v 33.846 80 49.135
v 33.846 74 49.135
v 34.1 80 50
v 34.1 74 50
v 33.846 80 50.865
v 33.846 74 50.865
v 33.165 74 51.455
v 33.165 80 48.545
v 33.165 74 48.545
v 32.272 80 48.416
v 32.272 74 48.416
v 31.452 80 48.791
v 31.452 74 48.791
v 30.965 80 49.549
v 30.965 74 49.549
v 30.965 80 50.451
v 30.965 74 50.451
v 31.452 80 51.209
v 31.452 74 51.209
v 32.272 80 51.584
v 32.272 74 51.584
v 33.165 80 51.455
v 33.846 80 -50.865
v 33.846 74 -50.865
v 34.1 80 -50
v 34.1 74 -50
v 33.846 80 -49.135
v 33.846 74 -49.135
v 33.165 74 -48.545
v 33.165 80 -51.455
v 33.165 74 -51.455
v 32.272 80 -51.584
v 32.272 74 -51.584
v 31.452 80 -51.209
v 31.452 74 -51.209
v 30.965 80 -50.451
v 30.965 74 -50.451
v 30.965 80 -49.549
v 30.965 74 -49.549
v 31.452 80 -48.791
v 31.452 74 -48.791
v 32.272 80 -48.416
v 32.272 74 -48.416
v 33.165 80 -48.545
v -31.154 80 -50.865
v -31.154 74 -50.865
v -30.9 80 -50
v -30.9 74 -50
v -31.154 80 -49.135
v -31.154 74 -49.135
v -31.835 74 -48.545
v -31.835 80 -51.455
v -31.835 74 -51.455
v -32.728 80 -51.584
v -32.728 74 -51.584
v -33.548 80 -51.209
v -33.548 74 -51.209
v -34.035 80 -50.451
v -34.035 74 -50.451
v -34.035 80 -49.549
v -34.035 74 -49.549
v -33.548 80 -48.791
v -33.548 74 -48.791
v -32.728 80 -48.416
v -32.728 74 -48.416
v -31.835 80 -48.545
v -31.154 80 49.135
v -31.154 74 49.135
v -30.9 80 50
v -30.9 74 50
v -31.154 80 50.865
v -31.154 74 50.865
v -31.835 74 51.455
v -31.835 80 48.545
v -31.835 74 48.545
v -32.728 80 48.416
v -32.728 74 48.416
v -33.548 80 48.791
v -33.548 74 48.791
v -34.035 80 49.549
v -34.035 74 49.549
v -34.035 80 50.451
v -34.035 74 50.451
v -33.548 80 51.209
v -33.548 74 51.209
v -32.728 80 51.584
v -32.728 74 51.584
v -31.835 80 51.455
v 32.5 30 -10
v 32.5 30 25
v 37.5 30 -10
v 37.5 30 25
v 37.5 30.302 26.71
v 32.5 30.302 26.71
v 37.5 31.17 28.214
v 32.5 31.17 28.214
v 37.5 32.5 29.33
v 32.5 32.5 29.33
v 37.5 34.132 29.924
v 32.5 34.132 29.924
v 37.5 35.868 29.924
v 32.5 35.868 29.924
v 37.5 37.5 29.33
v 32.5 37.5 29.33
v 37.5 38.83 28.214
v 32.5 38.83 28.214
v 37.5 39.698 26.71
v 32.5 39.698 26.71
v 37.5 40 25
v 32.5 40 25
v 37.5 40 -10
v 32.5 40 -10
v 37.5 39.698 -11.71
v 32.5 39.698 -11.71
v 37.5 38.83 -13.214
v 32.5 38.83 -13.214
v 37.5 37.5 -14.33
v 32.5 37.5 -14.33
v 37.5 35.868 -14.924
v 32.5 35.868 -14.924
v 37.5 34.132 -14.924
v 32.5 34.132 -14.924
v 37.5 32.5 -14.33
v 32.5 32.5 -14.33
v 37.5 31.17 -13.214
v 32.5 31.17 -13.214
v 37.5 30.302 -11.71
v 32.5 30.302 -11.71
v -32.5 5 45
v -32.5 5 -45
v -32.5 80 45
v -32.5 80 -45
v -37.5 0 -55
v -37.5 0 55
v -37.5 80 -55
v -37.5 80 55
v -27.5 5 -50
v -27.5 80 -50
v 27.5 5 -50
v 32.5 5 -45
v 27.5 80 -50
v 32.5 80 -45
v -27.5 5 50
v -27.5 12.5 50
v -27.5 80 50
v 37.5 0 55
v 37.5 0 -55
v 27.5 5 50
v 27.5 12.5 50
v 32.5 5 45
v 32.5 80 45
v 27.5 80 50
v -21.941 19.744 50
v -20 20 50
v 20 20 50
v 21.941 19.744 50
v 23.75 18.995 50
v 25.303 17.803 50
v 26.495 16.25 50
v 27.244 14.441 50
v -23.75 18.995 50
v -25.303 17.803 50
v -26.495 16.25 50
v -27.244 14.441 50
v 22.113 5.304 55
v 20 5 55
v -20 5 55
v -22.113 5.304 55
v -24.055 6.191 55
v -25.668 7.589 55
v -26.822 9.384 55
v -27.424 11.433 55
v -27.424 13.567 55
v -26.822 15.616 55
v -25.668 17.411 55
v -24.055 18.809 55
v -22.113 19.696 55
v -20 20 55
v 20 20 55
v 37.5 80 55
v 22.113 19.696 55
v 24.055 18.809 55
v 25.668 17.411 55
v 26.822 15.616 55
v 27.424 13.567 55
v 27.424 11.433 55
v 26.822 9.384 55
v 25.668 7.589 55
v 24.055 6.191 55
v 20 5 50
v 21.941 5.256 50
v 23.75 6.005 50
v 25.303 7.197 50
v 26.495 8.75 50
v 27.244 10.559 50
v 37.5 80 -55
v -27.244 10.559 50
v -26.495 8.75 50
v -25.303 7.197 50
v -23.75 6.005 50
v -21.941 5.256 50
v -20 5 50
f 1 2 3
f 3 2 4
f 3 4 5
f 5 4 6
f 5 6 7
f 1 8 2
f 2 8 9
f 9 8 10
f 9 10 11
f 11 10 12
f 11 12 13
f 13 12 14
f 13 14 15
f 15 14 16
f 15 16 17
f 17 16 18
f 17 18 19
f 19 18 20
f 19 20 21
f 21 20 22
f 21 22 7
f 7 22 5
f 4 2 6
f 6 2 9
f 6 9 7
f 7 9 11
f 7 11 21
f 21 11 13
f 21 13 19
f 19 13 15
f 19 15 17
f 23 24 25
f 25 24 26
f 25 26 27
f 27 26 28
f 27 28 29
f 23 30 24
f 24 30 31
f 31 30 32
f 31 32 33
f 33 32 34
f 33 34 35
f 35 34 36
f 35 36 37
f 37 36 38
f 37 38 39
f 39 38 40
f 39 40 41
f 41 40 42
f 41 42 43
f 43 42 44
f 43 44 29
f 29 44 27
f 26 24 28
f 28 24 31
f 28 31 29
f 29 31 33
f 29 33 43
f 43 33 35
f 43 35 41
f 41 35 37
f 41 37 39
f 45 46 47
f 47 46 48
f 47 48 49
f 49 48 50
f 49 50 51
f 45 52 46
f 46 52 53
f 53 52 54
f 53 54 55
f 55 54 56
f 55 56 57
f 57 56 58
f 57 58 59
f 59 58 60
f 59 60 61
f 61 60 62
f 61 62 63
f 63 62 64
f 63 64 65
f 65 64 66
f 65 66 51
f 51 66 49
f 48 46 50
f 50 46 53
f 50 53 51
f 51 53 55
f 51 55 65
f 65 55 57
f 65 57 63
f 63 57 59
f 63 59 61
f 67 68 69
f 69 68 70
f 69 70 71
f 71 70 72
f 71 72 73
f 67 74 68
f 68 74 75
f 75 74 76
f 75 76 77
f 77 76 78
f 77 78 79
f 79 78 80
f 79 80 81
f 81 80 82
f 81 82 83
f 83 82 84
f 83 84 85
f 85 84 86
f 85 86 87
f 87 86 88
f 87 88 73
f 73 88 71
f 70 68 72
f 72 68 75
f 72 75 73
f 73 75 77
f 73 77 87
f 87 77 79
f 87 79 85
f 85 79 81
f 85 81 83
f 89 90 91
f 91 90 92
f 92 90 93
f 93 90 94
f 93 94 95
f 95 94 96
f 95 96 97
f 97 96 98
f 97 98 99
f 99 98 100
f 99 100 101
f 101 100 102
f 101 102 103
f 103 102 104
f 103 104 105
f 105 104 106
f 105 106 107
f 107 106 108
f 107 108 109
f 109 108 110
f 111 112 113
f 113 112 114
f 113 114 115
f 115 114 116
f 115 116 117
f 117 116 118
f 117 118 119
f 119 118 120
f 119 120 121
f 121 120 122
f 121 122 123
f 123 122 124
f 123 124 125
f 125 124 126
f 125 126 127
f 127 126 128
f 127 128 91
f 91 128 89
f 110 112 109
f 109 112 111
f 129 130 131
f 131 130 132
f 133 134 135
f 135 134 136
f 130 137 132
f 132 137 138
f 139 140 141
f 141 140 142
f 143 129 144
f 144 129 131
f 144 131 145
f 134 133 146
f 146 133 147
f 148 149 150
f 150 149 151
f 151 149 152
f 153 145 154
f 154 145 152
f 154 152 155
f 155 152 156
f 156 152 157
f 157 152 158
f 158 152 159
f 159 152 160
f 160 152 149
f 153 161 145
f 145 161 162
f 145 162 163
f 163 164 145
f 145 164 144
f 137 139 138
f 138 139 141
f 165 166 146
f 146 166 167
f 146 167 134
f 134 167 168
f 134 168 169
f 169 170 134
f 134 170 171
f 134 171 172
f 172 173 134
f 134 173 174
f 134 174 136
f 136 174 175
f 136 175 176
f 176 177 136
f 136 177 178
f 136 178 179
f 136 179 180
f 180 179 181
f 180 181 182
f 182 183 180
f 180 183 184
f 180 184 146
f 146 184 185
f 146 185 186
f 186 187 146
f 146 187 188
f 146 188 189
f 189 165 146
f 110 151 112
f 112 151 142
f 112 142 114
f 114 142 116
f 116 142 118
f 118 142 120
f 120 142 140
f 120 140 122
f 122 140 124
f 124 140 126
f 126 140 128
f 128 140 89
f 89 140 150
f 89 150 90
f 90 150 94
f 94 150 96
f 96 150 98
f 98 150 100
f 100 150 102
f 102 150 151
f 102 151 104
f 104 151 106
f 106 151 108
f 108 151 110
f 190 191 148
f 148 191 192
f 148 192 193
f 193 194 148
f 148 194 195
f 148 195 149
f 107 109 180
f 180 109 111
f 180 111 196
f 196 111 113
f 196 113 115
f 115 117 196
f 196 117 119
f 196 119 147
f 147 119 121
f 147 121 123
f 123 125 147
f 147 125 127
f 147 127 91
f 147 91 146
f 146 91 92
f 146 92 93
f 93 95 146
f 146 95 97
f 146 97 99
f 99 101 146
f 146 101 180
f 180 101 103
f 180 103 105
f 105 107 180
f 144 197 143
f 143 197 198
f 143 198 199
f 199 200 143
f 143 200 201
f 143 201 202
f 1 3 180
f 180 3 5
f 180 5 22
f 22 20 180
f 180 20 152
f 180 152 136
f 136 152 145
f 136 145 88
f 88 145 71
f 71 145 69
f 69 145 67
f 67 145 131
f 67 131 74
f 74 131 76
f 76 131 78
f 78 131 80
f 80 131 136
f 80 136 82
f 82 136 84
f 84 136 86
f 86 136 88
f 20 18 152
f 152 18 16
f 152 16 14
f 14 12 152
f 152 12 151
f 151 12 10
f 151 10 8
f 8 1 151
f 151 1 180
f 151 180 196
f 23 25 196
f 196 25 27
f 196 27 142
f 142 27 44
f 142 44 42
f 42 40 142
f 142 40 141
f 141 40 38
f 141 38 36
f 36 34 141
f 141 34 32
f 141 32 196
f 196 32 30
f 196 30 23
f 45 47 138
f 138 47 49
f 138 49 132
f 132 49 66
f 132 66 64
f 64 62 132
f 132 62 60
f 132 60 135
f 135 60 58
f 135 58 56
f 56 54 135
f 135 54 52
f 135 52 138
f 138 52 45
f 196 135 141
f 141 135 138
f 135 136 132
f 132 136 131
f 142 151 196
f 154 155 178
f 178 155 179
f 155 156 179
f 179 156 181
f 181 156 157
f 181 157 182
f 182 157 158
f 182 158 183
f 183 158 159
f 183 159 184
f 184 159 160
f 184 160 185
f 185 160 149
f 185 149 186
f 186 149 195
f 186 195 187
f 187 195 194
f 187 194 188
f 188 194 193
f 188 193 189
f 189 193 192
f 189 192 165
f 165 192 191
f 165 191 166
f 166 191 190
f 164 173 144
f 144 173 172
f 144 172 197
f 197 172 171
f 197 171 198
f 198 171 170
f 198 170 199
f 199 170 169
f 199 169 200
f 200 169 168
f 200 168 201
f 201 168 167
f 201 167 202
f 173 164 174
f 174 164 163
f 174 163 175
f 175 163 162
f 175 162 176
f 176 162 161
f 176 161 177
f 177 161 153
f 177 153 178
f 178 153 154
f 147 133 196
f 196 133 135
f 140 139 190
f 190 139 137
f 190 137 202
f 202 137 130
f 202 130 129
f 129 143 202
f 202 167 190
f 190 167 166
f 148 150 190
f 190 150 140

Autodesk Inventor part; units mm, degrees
ref_plane "YZ Plane" through (0, 0, 0) normal (1, 0, 0) x (0, 1, 0)
ref_plane "XZ Plane" through (0, 0, 0) normal (0, 1, 0) x (-1, 0, 0)
ref_plane "XY Plane" through (0, 0, 0) normal (0, 0, 1) x (1, 0, 0)
sketch "Sketch1" plane through (0, 0, 0) normal (0, 1, 0) x (-1, 0, 0)
  line L0 (32.5, 50) -> (-32.5, 50)
  line L1 (-32.5, 50) -> (-32.5, -50)
  line L2 (-32.5, -50) -> (32.5, -50)
  line L3 (32.5, -50) -> (32.5, 50)
  line L4 (32.5, 50) -> (-32.5, -50) construction
  line L5 (-32.5, 50) -> (32.5, -50) construction
  line L6 (37.5, -55) -> (-37.5, -55)
  line L7 (-37.5, -55) -> (-37.5, 55)
  line L8 (-37.5, 55) -> (37.5, 55)
  line L9 (37.5, 55) -> (37.5, -55)
  line L10 (-32.5, 45) -> (-27.5, 50)
  line L11 (-32.5, 45) -> (-25.4289, 45) construction
  line L12 (0, 55) -> (0, -55) construction
  line L13 (-37.5, 0) -> (37.5, 0) construction
  line L14 (32.5, 45) -> (27.5, 50)
  line L15 (-32.5, -45) -> (-27.5, -50)
  line L16 (32.5, -45) -> (27.5, -50)
  point P0 (0, 0)
  dimension "d0" = 100
  dimension "d1" = 65
  dimension "d2" = 5
  dimension "d29" = 45
  dimension "d30" = 5
extrude "Extrusion1" add sketch "Sketch1" along normal blind 80 contours L3 L14 L0 | L10 L1 L0 | L3 L2 L16 | L15 L2 L1 | L6 L7 L8 L9
extrude "Extrusion2" add sketch "Sketch1" along normal blind 5 contours L3 L14 L0 | L14 L3 L16 L2 L15 L1 L10 L0 | L10 L1 L0 | L3 L2 L16 | L15 L2 L1
sketch "Sketch3" plane through (37.5, 0, 55) normal (1, 0, 0) x (0, 0, -1)
  line L0 (30, 40) -> (65, 40) construction
  line L1 (65, 40) -> (65, 30) construction
  line L2 (65, 30) -> (30, 30) construction
  line L3 (30, 30) -> (30, 40) construction
  line L4 (30, 40) -> (65, 30) construction
  line L5 (65, 40) -> (30, 30) construction
  line L6 (0, 0) -> (110, 0) projected
  line L7 (0, 0) -> (0, 80) projected
  line L8 (30, 35) -> (65, 35) construction
  line L9 (30, 30) -> (65, 30)
  line L10 (65, 40) -> (30, 40)
  arc A0 (30, 40) -> (30, 30) centre (30, 35) ccw
  arc A1 (65, 30) -> (65, 40) centre (65, 35) ccw
  point P0 (55, 0)
  point P1 (47.5, 35)
  point P2 (47.5, 40)
  dimension "d12" = 30
  dimension "d13" = 10
  dimension "d14" = 30
  dimension "d15" = 35
extrude "Extrusion4" cut sketch "Sketch3" against normal up to next
sketch "Sketch4" plane through (0, 80, 0) normal (0, 1, 0) x (1, 0, 0)
  line L0 (-37.5, -55) -> (37.5, -55) projected
  line L1 (37.5, -55) -> (37.5, 55) projected
  line L2 (37.5, 55) -> (-37.5, 55) projected
  line L3 (-37.5, 55) -> (-37.5, -55) projected
  point P0 (0, 0)
  point P1 (-32.5, -50)
  point P2 (-32.5, 50)
  point P3 (32.5, 50)
  point P4 (32.5, -50)
  dimension "d25" = 5
  dimension "d26" = 5
  dimension "d27" = 5
  dimension "d28" = 5
hole "Hole1" at (-32.5, 80, 50) at (-32.5, 80, -50) at (32.5, 80, -50) at (32.5, 80, 50) direction (0, -1, 0) diameter 3.2 depth 6
sketch "Sketch5" plane through (-37.5, 0, 55) normal (0, 0, 1) x (1, 0, 0)
  line L0 (65, 5) -> (10, 5) projected
  line L1 (17.5, 12.5) -> (57.5, 12.5) construction
  line L2 (17.5, 20) -> (57.5, 20)
  line L3 (57.5, 5) -> (17.5, 5)
  arc A0 (17.5, 20) -> (17.5, 5) centre (17.5, 12.5) ccw
  arc A1 (57.5, 5) -> (57.5, 20) centre (57.5, 12.5) ccw
  line L4 (10, 5) -> (10, 80) projected
  line L5 (65, 5) -> (65, 80) projected
  point P0 (37.5, 0)
  point P1 (37.5, 12.5)
  point P2 (37.5, 5)
  point P3 (10, 12.5)
  point P4 (65, 12.5)
  dimension "d31" = 15
extrude "Extrusion5" cut sketch "Sketch5" against normal up to next contours L0 A0 L2 A1
properties part number "DAQ_Housing_V1"
